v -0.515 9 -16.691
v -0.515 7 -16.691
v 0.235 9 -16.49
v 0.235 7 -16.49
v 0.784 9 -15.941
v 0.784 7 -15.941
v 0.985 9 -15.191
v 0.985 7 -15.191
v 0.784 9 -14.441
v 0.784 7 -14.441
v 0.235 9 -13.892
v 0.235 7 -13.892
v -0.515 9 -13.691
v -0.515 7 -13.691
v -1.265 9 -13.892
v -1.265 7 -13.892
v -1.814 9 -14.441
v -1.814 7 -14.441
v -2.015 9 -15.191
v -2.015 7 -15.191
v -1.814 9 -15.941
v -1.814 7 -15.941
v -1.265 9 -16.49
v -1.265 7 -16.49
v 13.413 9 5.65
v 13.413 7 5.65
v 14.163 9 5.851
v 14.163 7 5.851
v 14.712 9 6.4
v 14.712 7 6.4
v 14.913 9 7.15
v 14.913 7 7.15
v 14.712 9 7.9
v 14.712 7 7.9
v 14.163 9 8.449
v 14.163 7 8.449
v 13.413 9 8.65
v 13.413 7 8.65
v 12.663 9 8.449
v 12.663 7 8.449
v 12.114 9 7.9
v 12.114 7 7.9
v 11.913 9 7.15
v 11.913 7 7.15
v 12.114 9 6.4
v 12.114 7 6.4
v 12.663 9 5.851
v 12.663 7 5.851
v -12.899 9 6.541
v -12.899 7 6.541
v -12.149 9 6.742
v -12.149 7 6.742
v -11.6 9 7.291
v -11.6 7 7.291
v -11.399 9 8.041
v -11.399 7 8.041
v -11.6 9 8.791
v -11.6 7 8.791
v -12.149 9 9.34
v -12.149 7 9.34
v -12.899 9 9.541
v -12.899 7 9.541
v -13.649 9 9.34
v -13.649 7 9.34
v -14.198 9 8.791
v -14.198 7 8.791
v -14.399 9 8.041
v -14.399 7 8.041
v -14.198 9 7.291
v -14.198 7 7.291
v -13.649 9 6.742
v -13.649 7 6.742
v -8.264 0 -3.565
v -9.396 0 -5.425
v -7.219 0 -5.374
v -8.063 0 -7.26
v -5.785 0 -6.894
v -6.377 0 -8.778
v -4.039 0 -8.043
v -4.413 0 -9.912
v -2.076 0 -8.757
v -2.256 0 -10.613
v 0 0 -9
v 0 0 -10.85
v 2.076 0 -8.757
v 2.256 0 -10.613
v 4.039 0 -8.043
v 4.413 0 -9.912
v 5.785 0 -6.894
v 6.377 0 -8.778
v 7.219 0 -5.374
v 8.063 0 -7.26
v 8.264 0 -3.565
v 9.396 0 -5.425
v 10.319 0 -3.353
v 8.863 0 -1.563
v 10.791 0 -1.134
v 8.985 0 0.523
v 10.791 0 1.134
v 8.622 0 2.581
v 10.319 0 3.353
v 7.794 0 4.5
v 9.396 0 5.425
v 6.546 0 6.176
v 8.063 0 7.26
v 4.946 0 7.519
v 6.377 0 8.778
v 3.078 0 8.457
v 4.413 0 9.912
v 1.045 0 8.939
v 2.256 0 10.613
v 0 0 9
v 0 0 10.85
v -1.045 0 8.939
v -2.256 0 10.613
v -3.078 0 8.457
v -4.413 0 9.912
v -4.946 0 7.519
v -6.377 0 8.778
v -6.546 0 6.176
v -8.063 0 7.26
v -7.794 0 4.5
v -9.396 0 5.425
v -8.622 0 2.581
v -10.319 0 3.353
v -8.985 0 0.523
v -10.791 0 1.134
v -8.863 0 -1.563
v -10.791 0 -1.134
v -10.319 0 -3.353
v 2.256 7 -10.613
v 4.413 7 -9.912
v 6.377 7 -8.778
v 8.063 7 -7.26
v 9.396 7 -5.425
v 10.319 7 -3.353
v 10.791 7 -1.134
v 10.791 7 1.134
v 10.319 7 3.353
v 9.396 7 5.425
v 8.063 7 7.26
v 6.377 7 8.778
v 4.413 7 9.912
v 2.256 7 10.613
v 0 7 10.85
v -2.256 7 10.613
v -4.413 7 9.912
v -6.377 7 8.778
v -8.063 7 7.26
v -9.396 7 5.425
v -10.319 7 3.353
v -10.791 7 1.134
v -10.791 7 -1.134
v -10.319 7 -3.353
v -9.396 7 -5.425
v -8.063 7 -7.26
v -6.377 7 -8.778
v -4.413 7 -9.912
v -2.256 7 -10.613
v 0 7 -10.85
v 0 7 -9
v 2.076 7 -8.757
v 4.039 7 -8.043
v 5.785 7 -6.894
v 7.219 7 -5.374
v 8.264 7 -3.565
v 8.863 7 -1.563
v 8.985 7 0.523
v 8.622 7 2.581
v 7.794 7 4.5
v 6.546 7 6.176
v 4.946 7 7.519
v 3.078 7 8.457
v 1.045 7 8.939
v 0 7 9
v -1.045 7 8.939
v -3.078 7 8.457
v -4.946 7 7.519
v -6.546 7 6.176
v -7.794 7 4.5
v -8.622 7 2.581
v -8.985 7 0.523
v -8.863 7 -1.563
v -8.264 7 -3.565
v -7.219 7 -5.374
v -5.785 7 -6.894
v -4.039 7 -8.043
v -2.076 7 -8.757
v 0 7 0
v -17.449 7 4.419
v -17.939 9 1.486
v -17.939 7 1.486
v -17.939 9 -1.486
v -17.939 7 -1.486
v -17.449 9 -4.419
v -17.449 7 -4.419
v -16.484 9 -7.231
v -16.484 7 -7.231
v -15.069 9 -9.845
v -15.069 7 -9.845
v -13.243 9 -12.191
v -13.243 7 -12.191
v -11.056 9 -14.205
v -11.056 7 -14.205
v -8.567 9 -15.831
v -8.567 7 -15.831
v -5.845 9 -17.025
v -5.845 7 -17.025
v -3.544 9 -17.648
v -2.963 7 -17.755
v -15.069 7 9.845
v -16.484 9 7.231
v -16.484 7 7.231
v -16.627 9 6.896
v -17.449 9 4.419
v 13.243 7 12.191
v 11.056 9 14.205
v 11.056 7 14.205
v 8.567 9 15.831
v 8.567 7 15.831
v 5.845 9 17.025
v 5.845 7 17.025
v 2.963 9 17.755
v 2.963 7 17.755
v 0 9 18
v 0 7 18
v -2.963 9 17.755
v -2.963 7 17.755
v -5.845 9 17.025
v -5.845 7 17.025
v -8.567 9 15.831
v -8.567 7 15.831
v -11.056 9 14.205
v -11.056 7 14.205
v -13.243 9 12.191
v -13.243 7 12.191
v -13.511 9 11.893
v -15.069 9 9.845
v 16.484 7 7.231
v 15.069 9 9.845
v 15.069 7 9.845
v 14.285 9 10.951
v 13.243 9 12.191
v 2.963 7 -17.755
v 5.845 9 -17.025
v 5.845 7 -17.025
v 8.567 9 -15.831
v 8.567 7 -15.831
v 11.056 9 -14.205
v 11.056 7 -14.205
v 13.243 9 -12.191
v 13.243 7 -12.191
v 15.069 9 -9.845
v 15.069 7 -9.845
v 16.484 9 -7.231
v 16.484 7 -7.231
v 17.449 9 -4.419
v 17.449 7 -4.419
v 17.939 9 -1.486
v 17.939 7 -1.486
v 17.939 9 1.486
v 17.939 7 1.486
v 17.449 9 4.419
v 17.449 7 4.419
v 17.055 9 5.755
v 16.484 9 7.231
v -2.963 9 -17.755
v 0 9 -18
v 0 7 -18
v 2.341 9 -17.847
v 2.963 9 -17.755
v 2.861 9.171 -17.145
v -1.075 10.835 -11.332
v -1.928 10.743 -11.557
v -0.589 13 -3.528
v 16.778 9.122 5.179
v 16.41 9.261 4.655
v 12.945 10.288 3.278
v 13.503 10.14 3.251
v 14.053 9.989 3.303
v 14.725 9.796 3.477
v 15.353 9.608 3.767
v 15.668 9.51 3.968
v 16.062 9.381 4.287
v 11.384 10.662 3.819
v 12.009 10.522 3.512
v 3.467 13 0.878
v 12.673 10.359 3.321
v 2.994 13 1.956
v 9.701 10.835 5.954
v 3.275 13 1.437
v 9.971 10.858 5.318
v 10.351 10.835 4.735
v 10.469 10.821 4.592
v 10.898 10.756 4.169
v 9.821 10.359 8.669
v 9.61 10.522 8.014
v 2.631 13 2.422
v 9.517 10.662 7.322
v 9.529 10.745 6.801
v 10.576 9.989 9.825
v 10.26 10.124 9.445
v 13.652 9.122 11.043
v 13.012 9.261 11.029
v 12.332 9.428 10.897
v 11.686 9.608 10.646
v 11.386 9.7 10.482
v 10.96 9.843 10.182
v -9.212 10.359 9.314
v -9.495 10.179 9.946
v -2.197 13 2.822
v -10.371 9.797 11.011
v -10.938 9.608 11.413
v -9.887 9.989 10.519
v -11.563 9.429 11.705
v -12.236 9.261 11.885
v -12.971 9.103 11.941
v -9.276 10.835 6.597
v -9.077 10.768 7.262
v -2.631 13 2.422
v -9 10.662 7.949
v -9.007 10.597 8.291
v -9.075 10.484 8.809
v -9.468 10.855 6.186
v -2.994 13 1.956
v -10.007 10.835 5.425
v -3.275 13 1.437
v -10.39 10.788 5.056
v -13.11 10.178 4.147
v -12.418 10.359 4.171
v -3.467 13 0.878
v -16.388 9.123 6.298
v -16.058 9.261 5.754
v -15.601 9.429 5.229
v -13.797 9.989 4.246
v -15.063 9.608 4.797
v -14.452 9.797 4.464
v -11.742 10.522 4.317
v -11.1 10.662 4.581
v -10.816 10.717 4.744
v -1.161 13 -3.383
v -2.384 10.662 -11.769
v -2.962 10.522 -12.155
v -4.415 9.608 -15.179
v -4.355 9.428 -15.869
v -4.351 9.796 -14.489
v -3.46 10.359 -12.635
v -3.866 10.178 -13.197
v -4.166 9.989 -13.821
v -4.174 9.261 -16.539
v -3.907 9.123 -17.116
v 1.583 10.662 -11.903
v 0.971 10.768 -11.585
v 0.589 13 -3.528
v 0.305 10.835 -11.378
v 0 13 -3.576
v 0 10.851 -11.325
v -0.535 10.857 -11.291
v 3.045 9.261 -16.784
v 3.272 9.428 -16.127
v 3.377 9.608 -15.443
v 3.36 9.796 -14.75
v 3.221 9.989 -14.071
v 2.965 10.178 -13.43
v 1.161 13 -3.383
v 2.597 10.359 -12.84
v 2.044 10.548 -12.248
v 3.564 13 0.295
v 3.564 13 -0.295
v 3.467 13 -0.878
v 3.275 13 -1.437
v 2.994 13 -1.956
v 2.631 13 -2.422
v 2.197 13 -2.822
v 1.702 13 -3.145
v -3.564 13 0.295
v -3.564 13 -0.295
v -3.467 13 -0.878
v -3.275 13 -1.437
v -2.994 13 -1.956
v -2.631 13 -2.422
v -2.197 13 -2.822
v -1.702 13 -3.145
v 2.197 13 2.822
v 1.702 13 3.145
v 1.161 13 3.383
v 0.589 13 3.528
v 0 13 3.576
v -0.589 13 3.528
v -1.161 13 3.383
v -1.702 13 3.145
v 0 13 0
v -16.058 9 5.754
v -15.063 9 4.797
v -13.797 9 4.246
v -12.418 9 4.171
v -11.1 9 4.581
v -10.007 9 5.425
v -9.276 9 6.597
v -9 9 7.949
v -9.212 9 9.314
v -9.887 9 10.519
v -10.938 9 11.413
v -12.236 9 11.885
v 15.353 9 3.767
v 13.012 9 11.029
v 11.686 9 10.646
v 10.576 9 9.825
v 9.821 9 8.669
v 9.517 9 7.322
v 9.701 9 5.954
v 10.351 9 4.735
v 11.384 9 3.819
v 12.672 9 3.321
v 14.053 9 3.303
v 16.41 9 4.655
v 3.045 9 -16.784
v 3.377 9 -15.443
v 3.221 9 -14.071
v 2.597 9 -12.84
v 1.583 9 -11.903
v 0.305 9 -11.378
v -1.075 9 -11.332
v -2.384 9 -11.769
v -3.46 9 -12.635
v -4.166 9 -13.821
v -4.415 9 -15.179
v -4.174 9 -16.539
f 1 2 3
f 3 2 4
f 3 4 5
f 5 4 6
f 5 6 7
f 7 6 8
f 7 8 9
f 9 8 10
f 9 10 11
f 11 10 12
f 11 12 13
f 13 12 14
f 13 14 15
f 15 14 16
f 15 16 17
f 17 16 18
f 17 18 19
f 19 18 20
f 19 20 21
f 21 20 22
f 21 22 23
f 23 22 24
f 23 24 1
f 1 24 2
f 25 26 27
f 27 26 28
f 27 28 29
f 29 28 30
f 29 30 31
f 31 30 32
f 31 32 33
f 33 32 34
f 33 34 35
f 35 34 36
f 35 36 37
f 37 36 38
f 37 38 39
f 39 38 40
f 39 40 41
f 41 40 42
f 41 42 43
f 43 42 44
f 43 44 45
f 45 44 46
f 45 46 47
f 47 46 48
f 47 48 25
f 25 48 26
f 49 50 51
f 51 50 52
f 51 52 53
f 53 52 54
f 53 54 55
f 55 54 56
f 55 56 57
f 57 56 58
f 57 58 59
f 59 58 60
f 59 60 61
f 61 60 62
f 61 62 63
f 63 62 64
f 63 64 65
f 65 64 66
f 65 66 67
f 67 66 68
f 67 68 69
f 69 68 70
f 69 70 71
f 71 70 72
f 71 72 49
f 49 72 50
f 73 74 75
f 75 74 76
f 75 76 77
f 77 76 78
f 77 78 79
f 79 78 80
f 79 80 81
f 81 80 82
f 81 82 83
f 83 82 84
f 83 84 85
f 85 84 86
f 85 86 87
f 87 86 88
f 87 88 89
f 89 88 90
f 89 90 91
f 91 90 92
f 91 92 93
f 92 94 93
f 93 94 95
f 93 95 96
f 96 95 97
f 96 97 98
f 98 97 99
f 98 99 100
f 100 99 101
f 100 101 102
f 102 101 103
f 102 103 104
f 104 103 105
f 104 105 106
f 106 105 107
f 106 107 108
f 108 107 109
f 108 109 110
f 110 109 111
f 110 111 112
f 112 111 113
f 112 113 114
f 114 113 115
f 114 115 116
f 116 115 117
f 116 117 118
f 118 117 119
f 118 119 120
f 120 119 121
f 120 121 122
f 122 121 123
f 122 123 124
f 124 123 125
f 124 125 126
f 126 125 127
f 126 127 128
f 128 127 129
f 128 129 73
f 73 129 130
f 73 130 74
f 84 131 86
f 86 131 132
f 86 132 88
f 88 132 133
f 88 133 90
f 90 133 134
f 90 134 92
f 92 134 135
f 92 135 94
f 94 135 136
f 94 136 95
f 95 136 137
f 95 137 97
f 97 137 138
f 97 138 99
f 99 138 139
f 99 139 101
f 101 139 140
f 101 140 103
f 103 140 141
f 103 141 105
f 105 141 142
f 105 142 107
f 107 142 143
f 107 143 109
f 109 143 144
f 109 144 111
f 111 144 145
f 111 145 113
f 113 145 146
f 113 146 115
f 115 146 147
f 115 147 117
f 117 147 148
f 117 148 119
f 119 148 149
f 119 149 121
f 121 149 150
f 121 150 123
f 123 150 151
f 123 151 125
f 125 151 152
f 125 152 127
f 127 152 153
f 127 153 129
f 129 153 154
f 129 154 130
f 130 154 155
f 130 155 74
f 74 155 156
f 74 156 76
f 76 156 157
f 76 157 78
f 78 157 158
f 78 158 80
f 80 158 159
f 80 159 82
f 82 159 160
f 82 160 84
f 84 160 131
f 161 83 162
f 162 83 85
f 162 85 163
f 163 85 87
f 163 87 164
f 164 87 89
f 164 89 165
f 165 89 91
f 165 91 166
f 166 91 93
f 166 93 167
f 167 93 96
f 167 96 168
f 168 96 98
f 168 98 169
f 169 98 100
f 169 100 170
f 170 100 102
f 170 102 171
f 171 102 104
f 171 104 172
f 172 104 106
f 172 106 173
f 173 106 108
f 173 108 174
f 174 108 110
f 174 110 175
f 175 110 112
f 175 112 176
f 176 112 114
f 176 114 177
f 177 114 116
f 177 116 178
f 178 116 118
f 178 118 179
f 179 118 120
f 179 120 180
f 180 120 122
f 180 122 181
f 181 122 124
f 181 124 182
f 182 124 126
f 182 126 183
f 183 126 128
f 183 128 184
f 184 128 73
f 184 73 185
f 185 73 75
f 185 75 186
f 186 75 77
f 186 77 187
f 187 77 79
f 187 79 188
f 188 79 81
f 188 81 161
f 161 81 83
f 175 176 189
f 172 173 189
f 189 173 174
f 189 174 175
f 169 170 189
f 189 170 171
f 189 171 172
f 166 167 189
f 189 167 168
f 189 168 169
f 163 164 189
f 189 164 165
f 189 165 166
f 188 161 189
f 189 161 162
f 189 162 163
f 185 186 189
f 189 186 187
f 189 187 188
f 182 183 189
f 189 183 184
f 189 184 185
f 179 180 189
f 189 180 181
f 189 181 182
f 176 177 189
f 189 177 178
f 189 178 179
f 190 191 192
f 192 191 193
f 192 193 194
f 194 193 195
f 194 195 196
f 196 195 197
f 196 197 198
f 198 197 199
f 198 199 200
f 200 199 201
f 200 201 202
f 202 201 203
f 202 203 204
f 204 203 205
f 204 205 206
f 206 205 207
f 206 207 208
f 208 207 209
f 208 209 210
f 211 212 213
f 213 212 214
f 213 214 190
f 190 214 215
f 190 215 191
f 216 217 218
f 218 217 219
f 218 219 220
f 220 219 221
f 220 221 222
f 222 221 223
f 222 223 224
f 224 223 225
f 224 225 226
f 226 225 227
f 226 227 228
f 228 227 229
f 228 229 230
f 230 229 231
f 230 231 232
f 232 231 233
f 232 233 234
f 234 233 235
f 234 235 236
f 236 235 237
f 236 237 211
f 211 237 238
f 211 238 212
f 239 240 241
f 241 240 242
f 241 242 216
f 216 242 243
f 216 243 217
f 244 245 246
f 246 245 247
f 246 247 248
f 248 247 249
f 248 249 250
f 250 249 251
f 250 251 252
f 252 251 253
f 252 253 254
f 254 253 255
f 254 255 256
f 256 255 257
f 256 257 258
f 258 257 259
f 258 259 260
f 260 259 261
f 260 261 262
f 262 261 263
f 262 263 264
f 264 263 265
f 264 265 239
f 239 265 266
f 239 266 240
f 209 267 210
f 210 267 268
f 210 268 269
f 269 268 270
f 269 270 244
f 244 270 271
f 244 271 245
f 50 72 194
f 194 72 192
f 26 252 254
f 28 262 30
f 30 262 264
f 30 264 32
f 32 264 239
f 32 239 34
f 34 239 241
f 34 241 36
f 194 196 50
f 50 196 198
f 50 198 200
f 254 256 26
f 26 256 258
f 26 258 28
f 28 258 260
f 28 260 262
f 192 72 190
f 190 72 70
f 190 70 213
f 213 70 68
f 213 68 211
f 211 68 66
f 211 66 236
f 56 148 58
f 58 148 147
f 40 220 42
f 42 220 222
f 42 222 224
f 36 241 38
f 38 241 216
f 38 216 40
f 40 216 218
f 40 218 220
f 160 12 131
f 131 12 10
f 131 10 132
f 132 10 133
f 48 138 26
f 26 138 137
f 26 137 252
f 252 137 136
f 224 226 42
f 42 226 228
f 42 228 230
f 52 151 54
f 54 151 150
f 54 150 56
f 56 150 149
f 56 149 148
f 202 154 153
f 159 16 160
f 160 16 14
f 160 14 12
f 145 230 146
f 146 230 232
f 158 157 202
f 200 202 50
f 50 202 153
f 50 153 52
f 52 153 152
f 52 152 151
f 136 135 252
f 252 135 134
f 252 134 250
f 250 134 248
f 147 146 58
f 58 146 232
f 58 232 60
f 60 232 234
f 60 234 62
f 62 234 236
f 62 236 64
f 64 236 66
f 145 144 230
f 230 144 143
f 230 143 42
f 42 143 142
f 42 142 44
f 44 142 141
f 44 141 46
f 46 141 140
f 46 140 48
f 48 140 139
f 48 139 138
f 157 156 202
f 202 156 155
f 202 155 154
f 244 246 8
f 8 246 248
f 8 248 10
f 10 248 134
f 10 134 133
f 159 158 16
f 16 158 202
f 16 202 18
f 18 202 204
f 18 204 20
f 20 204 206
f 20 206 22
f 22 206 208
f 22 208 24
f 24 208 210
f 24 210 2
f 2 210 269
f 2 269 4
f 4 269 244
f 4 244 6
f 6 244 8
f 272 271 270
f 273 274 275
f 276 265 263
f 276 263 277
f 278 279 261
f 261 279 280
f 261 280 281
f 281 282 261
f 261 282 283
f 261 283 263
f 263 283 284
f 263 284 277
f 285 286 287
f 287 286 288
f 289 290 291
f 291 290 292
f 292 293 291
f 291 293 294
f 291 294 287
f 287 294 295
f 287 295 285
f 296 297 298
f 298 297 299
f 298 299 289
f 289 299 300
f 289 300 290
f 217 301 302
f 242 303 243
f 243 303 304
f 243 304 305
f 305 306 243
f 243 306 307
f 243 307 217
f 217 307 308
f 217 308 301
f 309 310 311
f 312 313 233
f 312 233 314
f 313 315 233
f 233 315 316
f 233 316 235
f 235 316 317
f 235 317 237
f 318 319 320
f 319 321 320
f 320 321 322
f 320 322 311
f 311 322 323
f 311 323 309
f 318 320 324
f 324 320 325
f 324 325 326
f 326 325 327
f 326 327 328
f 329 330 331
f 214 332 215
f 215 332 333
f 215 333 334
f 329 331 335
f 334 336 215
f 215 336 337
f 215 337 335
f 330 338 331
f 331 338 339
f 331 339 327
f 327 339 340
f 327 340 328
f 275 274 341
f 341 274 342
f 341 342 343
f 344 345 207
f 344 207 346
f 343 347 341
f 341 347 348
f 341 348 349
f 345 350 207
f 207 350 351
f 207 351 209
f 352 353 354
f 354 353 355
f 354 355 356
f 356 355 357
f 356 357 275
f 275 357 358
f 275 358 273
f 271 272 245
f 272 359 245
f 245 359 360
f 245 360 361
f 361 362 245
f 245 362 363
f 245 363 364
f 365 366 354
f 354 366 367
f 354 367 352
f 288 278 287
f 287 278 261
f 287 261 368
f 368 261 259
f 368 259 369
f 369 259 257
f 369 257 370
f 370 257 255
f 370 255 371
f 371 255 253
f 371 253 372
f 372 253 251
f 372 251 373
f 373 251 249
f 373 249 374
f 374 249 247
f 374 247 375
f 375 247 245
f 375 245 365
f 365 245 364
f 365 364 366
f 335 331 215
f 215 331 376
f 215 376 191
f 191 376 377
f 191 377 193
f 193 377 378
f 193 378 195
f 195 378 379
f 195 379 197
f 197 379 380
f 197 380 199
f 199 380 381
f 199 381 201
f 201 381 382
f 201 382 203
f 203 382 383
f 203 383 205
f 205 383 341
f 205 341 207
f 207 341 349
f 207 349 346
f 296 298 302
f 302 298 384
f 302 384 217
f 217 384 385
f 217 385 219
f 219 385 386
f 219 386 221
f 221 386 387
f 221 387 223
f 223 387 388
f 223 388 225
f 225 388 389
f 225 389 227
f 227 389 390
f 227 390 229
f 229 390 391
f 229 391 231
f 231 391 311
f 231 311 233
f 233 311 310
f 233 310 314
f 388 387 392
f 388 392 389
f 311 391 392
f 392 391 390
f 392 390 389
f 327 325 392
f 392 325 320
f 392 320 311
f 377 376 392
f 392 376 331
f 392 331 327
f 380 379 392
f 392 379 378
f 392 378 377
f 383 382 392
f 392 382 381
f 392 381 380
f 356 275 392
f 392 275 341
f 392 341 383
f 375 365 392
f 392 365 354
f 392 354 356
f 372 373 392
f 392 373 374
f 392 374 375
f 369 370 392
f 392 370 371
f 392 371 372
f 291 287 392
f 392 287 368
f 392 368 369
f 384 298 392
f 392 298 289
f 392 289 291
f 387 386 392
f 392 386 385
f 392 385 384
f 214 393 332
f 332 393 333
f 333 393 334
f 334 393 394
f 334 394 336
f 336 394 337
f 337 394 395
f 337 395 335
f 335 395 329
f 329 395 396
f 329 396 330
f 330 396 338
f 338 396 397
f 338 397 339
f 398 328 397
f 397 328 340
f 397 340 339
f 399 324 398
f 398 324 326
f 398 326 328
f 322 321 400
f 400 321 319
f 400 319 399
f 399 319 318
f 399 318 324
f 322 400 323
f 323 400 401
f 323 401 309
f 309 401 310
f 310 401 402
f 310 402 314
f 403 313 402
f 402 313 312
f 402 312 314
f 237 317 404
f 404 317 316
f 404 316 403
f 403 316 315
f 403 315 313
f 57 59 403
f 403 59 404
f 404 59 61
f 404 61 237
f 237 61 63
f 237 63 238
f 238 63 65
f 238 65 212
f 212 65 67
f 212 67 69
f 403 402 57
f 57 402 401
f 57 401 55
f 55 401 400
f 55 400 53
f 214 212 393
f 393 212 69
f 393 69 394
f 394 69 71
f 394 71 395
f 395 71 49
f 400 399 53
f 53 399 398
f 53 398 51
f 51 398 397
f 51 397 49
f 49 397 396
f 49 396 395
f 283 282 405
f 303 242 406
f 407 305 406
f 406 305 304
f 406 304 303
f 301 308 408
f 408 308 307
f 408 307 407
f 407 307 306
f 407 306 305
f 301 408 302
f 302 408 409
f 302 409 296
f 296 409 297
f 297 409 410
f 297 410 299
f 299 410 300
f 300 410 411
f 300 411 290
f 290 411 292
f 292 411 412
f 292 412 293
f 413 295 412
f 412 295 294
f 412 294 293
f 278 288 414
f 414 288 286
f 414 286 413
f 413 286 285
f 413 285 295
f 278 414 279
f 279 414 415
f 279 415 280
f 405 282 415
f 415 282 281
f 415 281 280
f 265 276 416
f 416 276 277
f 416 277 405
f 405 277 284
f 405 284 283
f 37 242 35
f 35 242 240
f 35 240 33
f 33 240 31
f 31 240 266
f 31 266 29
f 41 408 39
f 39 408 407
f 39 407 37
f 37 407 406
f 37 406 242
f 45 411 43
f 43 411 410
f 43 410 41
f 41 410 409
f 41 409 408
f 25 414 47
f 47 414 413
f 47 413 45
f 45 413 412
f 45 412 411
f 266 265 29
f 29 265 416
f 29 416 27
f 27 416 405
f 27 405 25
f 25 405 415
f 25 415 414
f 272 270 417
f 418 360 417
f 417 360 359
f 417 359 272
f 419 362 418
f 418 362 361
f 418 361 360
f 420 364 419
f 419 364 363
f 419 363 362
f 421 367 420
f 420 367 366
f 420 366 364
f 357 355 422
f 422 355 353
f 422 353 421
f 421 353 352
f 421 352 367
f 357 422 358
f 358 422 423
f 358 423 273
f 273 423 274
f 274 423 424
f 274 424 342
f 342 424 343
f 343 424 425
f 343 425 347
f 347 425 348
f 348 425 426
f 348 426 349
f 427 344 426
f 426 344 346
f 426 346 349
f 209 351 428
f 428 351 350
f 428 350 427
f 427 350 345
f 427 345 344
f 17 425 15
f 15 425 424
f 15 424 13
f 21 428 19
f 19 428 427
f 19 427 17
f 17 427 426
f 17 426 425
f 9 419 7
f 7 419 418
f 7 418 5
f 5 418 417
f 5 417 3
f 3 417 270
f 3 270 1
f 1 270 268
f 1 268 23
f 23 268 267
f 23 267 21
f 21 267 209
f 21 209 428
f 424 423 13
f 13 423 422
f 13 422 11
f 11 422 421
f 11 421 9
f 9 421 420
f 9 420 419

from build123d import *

# Parameters (mm, degrees)
ESQUISSE1_R             = 10.85
ESQUISSE1_R_2           = 9
BOSS_EXTRU_1_DEPTH      = 7
ESQUISSE2_R             = 18
BOSS_EXTRU_2_DEPTH      = 2
ESQUISSE4_R             = 18
BOSS_EXTRU_3_DEPTH      = 4
BOSS_EXTRU_3_TAPER      = 74.5
ESQUISSE5_R             = 1.5
ENL_V_MAT_EXTRU_1_DEPTH = 4
ESQUISSE6_R             = 3.9
ENL_V_MAT_EXTRU_2_DEPTH = 4


with BuildPart() as part:
    # Esquisse1 → Boss.-Extru.1 (new body)
    with BuildSketch(Plane(origin=(0, 0, 0), x_dir=(1, 0, 0), z_dir=(0, 1, 0))):
        with Locations(Location((0, 0, 0), (0, 0, 270))):
            Circle(ESQUISSE1_R)
        with Locations(Location((0, 0, 0), (0, 0, 270))):
            Circle(ESQUISSE1_R_2, mode=Mode.SUBTRACT)
    extrude(amount=BOSS_EXTRU_1_DEPTH)

    # Esquisse2 → Boss.-Extru.2 (add)
    with BuildSketch(Plane(origin=(0, 7, 0), x_dir=(1, 0, 0), z_dir=(0, 1, 0))):
        with Locations(Location((0, 0, 0), (0, 0, 270))):
            Circle(ESQUISSE2_R)
    extrude(amount=BOSS_EXTRU_2_DEPTH)

    # Esquisse4 → Boss.-Extru.3 (add)
    with BuildSketch(Plane(origin=(0, 9, 0), x_dir=(1, 0, 0), z_dir=(0, 1, 0))):
        with Locations(Location((0, 0, 0), (0, 0, 270))):
            Circle(ESQUISSE4_R)
    extrude(amount=BOSS_EXTRU_3_DEPTH, taper=BOSS_EXTRU_3_TAPER)

    # Esquisse5 → Enlèv. mat.-Extru.1 (cut)
    with BuildSketch(Plane.XZ.offset(-7)):
        with Locations(Location((-12.898733794, 8.041309999, 0), (0, 0, 270))):
            Circle(ESQUISSE5_R)
        with Locations(Location((13.413345636, 7.149976143, 0), (0, 0, 270))):
            Circle(ESQUISSE5_R)
        with Locations(Location((-0.514611842, -15.191286142, 0), (0, 0, 270))):
            Circle(ESQUISSE5_R)
    extrude(amount=-ENL_V_MAT_EXTRU_1_DEPTH, mode=Mode.SUBTRACT)

    # Esquisse6 → Enlèv. mat.-Extru.2 (cut)
    with BuildSketch(Plane(origin=(0, 13, 0), x_dir=(1, 0, 0), z_dir=(0, 1, 0))):
        with Locations((-0.514611842, 15.191286142)):
            Circle(ESQUISSE6_R)
        with Locations((13.413345636, -7.149976143)):
            Circle(ESQUISSE6_R)
        with Locations((-12.898733794, -8.041309999)):
            Circle(ESQUISSE6_R)
    extrude(amount=-ENL_V_MAT_EXTRU_2_DEPTH, mode=Mode.SUBTRACT)


solid = part.part
